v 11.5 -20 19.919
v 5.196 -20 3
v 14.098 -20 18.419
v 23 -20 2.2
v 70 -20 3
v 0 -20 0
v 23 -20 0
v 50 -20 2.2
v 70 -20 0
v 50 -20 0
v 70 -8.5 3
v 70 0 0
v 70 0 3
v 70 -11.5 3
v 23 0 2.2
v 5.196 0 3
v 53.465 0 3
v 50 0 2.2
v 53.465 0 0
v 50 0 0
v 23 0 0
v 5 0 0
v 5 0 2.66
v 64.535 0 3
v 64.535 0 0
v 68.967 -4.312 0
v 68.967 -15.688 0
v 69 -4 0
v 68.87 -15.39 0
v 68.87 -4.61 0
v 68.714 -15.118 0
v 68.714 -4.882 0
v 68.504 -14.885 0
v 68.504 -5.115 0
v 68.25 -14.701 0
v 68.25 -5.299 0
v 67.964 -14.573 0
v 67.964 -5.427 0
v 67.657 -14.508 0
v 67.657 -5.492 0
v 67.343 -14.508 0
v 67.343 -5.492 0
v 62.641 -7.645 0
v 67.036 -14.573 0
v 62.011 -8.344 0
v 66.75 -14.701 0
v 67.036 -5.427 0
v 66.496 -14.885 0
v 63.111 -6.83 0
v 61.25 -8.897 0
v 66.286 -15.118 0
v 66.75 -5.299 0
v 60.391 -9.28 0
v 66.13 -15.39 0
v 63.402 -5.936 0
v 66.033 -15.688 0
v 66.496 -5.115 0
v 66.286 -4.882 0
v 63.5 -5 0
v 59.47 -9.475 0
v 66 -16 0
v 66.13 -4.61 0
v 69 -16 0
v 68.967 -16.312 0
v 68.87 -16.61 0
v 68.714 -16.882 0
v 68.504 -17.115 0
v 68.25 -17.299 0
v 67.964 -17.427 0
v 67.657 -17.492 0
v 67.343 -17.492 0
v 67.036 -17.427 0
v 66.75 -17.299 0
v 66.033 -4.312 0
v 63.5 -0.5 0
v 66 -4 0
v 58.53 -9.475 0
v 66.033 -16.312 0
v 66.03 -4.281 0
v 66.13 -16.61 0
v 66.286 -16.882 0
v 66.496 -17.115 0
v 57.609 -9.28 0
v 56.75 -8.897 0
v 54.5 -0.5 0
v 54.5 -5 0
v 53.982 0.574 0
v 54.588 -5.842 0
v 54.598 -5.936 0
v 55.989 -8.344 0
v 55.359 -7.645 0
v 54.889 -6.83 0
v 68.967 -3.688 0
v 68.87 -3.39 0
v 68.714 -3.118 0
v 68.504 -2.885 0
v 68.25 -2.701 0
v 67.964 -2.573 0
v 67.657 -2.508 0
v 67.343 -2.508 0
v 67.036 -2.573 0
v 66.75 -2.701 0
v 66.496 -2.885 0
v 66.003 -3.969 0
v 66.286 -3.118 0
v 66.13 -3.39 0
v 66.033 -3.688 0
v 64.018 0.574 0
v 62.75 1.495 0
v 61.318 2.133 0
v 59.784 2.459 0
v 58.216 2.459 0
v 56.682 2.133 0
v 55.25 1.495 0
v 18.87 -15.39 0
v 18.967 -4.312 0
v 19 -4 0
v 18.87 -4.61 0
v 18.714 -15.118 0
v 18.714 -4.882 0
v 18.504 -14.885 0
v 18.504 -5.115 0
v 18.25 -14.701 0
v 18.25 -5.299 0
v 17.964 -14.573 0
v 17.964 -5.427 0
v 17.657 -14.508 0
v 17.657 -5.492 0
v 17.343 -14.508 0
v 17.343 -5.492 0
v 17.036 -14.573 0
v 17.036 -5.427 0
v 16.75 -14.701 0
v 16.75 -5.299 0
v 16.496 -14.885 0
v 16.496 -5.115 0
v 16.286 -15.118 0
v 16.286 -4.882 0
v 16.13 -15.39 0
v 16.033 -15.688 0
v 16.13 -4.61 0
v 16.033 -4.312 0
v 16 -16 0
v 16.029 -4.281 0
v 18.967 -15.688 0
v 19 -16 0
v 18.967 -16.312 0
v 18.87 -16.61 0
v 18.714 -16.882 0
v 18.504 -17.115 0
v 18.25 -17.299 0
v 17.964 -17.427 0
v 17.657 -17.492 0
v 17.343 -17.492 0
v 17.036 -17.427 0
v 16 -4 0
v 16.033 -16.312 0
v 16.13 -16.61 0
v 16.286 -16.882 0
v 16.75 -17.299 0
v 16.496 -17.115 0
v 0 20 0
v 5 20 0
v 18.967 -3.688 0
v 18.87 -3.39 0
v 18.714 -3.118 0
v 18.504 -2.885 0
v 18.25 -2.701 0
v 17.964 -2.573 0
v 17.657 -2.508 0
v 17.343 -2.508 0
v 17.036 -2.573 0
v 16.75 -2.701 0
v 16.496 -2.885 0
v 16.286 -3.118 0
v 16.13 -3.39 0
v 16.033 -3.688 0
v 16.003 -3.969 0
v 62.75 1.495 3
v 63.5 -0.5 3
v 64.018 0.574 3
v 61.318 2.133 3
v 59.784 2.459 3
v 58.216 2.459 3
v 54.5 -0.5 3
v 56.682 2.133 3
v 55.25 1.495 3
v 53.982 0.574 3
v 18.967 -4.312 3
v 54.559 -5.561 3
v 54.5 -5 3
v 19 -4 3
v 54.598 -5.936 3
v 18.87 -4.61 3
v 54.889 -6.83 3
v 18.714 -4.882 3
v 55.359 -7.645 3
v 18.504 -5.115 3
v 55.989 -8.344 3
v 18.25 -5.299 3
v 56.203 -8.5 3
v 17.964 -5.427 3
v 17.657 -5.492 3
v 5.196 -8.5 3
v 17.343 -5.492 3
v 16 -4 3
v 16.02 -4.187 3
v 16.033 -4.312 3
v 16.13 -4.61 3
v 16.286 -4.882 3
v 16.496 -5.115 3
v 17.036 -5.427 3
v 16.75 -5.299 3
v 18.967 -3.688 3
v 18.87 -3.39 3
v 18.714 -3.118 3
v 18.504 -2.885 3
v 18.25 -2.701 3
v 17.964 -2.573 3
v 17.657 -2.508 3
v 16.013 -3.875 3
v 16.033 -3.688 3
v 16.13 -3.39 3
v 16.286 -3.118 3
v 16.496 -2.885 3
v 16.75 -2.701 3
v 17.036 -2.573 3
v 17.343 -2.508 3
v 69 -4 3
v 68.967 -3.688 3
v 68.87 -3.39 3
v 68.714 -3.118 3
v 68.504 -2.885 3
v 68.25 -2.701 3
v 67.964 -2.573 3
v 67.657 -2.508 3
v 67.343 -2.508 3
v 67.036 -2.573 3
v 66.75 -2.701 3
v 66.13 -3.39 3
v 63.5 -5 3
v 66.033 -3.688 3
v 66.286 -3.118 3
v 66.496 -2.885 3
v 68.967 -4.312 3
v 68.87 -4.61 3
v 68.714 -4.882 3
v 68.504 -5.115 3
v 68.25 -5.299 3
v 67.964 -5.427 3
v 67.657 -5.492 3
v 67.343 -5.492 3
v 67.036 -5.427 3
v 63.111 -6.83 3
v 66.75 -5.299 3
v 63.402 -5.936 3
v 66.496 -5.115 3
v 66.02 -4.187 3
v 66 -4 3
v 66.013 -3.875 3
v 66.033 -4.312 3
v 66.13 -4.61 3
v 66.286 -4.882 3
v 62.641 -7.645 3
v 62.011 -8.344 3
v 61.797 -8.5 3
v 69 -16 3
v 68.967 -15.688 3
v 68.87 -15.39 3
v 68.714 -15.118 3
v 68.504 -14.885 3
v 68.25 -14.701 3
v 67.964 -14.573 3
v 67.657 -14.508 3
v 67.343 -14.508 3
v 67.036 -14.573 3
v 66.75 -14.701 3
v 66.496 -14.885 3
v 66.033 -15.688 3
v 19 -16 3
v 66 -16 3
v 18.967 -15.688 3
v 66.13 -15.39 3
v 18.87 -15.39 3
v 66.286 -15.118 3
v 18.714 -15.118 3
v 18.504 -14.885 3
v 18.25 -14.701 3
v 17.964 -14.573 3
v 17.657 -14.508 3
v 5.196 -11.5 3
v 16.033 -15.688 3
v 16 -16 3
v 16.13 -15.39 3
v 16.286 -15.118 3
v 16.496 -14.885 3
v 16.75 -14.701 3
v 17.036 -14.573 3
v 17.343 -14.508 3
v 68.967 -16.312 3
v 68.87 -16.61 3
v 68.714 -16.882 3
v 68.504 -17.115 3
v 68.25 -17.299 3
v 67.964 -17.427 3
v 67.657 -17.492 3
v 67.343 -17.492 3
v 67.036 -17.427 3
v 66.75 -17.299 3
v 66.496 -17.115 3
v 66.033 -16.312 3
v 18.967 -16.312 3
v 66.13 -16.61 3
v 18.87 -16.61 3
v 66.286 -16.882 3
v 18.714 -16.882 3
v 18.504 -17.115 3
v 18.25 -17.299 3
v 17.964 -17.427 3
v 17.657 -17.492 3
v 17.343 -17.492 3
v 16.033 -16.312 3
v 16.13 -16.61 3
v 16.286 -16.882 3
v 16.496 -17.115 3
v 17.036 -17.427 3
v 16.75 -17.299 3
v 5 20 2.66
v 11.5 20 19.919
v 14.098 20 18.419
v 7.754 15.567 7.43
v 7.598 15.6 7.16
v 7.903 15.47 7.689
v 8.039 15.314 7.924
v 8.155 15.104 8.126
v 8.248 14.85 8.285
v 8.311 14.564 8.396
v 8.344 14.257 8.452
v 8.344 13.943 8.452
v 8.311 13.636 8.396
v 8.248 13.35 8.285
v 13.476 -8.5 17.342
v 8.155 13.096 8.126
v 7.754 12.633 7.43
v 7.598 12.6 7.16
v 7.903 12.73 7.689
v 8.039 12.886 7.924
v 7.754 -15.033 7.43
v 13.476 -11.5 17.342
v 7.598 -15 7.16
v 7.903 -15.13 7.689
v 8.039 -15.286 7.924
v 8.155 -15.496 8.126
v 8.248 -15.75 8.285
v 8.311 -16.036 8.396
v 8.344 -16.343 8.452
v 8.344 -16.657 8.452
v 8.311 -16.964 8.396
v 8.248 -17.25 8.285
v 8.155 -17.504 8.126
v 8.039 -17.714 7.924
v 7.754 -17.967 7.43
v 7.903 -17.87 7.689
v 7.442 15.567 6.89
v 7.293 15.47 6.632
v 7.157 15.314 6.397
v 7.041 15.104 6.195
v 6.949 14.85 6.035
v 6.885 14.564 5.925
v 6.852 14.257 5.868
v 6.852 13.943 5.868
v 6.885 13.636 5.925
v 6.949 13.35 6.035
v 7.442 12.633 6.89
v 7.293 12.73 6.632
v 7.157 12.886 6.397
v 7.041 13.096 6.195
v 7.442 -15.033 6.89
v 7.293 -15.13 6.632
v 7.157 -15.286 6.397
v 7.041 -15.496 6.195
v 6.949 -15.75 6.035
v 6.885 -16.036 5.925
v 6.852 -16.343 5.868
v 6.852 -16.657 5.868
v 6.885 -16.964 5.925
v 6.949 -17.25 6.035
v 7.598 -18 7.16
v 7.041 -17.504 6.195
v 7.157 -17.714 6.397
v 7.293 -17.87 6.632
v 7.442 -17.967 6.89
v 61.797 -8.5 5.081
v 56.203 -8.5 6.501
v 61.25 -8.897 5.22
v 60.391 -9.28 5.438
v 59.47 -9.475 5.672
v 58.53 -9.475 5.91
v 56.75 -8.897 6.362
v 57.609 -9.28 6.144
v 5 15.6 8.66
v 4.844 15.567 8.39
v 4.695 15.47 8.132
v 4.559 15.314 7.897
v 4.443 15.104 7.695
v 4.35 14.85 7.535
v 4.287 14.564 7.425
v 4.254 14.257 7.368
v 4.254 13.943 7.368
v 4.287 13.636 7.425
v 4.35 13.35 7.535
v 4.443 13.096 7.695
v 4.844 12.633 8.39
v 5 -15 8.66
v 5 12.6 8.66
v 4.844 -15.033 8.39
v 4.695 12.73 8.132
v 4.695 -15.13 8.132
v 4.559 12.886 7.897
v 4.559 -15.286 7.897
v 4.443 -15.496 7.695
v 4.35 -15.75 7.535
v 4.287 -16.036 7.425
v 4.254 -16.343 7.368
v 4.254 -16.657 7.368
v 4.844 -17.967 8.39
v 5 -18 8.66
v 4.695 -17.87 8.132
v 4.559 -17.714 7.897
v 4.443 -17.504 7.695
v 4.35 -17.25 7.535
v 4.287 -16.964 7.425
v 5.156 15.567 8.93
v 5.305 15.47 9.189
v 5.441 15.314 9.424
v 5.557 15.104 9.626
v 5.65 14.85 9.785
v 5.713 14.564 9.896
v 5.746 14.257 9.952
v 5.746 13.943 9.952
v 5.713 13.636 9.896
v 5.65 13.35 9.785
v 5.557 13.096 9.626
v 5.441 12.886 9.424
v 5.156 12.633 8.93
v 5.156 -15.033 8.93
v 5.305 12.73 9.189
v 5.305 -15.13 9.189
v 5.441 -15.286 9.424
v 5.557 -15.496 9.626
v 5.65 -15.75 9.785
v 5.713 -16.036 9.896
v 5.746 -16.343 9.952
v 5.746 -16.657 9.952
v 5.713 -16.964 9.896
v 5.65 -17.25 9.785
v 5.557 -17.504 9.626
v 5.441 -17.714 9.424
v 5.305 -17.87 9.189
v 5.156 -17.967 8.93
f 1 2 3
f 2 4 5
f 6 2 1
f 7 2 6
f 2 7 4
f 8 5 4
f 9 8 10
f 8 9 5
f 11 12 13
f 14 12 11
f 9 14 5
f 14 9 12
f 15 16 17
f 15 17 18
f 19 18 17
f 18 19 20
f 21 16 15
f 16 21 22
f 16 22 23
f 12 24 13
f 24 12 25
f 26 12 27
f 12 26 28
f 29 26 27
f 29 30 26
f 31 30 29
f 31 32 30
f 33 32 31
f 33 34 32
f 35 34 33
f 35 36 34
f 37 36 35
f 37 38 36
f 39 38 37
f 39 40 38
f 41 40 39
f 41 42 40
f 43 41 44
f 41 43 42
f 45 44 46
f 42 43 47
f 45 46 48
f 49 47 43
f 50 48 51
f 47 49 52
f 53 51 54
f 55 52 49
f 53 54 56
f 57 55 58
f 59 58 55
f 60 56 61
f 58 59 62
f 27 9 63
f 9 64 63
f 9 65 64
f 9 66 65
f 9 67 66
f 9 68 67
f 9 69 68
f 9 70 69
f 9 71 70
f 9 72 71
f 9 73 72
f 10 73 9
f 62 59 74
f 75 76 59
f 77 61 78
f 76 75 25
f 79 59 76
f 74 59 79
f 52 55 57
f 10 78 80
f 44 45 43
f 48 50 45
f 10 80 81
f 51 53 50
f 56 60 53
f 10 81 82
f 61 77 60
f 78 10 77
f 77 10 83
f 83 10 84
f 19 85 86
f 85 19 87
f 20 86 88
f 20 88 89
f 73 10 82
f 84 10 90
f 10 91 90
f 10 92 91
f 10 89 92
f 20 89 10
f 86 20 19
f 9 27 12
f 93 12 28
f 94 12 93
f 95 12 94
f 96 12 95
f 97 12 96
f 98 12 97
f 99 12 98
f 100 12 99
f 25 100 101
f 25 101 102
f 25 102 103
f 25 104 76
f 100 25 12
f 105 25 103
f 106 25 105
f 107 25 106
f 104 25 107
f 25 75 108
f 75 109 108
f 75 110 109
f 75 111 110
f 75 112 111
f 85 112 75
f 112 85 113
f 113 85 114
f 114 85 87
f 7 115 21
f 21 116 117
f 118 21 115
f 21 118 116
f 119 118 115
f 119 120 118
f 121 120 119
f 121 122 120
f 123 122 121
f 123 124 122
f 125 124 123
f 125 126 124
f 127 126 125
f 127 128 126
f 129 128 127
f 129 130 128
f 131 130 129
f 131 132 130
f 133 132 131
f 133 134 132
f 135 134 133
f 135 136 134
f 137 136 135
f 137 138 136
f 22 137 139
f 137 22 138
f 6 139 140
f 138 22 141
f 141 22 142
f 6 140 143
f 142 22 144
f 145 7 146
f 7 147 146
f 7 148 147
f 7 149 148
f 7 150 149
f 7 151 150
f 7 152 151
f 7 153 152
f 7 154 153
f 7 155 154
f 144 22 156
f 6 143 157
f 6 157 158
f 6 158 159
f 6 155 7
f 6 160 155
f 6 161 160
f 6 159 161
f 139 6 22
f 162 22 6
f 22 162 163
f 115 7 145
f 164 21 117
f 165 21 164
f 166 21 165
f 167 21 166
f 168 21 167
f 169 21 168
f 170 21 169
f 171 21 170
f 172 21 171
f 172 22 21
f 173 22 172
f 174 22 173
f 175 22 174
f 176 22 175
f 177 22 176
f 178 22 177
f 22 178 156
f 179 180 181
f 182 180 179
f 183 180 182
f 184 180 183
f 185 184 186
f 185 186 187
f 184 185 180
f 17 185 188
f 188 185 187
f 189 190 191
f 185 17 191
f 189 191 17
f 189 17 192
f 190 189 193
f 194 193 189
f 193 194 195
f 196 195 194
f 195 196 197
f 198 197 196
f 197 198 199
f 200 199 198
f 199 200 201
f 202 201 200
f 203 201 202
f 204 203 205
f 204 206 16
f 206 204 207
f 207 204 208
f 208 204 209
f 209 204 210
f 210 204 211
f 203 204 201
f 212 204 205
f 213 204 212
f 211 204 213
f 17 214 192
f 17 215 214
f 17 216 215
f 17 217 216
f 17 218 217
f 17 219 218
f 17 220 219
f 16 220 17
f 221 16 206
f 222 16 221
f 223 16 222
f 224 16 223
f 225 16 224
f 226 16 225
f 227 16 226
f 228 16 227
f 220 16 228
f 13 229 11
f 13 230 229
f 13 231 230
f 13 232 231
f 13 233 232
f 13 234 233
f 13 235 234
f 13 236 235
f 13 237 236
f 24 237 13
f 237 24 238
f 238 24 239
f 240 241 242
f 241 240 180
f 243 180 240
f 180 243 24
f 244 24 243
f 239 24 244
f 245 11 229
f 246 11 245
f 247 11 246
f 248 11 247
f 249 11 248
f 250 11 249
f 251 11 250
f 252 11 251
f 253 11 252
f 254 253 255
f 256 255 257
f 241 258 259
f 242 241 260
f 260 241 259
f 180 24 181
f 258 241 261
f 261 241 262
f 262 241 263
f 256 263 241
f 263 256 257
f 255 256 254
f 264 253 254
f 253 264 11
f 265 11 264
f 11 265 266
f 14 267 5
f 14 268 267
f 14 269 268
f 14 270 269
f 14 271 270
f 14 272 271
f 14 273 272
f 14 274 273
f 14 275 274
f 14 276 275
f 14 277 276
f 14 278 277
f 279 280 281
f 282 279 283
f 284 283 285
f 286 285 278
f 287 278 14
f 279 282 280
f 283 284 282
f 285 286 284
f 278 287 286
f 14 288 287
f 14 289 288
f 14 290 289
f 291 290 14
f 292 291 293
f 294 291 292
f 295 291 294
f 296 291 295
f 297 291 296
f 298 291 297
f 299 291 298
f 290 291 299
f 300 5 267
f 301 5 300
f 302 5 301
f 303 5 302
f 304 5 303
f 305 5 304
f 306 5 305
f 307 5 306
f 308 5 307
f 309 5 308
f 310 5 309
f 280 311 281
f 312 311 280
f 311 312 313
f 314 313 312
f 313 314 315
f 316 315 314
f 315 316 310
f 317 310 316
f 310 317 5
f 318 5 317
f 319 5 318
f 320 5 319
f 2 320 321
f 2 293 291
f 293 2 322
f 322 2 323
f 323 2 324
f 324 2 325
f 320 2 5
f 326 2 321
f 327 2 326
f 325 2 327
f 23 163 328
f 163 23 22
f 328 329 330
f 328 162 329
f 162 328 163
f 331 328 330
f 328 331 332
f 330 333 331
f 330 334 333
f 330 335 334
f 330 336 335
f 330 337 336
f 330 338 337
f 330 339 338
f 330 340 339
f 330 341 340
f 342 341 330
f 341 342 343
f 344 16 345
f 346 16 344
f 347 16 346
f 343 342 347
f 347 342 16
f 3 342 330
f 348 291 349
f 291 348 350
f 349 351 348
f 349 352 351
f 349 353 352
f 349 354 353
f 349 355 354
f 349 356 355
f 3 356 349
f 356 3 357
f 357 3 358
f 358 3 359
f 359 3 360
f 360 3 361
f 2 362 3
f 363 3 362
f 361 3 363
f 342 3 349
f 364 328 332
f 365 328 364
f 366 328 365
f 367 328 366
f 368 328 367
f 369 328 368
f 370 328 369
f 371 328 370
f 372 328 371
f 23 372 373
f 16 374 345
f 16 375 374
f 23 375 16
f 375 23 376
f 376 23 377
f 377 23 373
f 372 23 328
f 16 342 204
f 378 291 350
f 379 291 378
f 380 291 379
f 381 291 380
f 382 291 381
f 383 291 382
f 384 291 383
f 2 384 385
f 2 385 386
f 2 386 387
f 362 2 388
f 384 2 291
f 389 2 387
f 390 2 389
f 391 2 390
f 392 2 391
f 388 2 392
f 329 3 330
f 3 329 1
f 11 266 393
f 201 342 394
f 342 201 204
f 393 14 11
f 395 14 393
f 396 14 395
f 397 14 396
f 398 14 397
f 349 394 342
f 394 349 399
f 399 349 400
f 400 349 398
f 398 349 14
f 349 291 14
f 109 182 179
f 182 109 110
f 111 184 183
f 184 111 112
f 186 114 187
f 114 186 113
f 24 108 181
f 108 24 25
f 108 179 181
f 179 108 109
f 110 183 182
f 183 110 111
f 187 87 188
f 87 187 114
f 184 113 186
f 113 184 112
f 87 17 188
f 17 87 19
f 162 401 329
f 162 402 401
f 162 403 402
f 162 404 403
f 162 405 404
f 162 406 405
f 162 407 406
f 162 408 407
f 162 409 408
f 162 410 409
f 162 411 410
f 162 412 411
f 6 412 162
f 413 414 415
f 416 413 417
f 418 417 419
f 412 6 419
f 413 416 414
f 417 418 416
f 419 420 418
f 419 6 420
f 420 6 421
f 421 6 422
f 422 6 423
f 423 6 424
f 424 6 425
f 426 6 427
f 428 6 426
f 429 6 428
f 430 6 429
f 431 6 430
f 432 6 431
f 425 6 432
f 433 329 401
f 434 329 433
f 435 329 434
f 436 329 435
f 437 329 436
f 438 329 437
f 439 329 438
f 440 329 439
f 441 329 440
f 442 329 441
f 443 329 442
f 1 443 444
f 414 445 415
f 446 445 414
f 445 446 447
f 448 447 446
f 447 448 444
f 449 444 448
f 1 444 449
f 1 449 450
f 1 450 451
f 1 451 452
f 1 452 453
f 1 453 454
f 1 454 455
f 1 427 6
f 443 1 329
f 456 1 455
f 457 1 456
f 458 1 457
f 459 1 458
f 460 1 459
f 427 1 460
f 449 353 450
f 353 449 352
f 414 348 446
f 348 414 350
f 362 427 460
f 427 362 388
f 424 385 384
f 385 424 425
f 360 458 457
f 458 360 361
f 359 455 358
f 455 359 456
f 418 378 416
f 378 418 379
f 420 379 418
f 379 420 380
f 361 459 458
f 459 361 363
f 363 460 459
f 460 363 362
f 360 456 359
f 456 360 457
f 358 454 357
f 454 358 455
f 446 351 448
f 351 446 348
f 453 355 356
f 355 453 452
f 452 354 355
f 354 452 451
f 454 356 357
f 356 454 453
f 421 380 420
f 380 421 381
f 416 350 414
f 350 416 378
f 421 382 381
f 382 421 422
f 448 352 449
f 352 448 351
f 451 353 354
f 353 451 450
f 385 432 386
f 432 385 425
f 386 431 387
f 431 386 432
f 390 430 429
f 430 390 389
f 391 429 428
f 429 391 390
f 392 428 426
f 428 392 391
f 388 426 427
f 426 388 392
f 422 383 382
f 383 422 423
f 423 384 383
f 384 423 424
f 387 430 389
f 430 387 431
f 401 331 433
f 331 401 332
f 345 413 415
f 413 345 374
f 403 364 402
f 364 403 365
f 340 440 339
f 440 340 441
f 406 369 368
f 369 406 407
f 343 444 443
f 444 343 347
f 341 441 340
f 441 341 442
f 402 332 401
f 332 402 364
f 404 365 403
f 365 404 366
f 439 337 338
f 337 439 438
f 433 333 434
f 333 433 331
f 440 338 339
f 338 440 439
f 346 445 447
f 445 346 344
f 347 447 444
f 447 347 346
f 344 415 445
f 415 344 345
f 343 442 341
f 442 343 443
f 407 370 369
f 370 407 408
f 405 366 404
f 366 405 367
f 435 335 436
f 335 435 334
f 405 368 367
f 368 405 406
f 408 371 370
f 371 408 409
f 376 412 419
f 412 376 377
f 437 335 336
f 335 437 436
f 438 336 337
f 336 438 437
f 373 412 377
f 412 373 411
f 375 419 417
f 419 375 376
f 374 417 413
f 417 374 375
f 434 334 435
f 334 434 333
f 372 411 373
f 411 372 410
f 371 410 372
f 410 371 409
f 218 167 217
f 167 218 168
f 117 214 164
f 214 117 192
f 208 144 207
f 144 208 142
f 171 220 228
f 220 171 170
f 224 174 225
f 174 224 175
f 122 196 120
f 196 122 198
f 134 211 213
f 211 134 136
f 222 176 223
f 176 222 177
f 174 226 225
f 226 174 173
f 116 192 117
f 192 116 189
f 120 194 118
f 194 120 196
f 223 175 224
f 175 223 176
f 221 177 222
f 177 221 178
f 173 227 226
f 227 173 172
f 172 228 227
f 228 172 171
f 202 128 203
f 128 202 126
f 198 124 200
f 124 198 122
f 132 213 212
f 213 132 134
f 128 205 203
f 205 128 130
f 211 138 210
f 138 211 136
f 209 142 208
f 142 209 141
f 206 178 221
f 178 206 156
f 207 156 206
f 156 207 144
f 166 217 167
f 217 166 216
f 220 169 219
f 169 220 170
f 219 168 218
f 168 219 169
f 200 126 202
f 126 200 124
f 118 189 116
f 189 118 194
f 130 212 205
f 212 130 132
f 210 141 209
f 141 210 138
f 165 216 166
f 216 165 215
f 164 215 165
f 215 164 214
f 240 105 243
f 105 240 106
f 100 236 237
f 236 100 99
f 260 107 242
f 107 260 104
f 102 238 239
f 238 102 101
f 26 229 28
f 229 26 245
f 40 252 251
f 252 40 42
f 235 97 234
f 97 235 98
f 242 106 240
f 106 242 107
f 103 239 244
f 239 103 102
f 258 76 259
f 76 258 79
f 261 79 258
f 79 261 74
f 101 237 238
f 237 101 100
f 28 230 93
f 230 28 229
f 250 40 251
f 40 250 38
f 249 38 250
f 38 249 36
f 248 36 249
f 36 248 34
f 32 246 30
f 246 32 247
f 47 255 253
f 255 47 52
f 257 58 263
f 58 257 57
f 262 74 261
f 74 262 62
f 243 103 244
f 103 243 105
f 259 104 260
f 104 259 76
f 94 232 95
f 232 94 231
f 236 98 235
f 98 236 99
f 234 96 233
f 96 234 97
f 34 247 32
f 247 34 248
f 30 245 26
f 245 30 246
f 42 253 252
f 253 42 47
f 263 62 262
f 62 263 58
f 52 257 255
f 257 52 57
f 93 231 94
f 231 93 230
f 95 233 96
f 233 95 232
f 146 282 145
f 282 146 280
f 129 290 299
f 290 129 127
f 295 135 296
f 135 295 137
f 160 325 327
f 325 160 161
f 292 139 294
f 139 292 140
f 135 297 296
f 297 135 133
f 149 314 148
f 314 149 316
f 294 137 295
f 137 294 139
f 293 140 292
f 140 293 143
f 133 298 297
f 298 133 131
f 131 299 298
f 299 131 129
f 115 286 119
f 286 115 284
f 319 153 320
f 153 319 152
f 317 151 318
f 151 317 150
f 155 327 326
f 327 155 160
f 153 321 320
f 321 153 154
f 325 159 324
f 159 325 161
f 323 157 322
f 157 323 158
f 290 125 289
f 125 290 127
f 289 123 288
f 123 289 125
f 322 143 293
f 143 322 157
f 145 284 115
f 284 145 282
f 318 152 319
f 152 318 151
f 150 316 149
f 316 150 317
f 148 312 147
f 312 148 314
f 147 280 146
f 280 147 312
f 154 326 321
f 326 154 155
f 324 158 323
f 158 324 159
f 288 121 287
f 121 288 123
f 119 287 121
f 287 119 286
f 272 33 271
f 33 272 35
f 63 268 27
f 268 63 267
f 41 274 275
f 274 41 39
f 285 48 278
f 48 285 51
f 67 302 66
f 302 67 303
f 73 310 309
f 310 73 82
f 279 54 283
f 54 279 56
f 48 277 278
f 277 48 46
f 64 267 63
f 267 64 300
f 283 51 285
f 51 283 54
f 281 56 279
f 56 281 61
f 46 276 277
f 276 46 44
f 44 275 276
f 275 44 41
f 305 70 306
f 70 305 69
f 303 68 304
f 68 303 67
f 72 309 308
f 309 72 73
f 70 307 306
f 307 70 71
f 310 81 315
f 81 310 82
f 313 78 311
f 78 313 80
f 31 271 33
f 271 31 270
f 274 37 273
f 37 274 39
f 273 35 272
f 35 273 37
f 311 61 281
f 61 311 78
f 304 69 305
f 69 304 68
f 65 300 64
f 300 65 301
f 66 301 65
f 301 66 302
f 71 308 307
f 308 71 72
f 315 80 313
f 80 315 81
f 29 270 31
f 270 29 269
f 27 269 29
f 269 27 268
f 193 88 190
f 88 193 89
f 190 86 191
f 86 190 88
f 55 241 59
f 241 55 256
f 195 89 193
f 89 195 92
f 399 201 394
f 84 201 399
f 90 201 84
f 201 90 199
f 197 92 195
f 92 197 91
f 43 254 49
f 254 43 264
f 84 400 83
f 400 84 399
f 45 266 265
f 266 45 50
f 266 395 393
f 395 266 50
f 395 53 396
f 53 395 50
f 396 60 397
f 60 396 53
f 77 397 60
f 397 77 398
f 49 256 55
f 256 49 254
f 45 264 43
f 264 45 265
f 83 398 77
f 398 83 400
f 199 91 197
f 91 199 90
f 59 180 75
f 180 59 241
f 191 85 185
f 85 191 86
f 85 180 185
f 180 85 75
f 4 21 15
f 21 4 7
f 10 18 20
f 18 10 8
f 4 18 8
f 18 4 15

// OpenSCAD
// file: lib/halfcube.scad
// библиотечная функция - прямоугольная призма
/*
 * a - вектор [x,y,z] - куб, в который вписана призма
 * orient - строка "x"/"y"/"z" - ориентация треугольной грани призмы
 * center - логическое true/false - позиционирование относительно центра или с угла
 *
 * Автор - Andrew Answer (Андрей Нуждов): http://answe.ru
 * Сделано для проекта SibRap: http://reprap.org/wiki/SibRap
 * GitHub: https://github.com/andrewanswer/sibrap
 */
module halfcube(a, orient, center) {
	translate(center==true?-a/2:0) {
		if (orient=="x")
			polyhedron (points = [[a[0],0,a[2]], [0,0,a[2]], [0,a[1],0], [0,0,0], [a[0],0,0], [a[0],a[1],0]], faces = [[1,3,2], [4,0,5], [3,1,4], [1,2,5], [1,0,4], [0,1,5],  [5,2,4], [4,2,3]]);
		if (orient=="y")
			polyhedron (points = [[0,a[1],a[2]], [0,0,a[2]], [0,a[1],0], [0,0,0], [a[0],0,0], [a[0],a[1],0]], faces = [[1,3,2], [1,2,0], [3,1,4], [0,2,5], [1,5,4], [1,0,5],  [5,2,4], [4,2,3]]);
		if (orient=="z")
			polyhedron (points = [[0,a[1],a[2]], [0,0,a[2]], [0,a[1],0], [0,0,0], [a[0],0,0], [a[0],0,a[2]]], faces = [[1,3,2], [1,2,0], [3,1,4], [0,2,5], [1,5,4], [1,0,5],  [5,2,4], [4,2,3]]);
	}
}

// test
/*
halfcube([10,20,30],"x",true);
halfcube([10,20,30],"y",true);
halfcube([10,20,30],"z",false);
*/
// file: config.scad
/**
 * Глобальный конфигурационный файл
 */
// качество цилиндров
$fn=30;

// избегание совпадения граней
DELTA=0.1;

// толщина рамы
FRAME=18;

// расстояние от стенок до гайки
DELTA_NUT = 0.3;
// высота, макс. диаметр, между стенками (размер ключа)
// гайка М3
m3_base=[2.4,6.4,5.5];
m3_hole=m3_base+[DELTA_NUT,DELTA_NUT,DELTA_NUT];
//[3,7,6]
// гайка М4
m4_base=[3.2,8.1,6.9];
m4_hole=m4_base+[DELTA_NUT,DELTA_NUT,DELTA_NUT];
// гайка М5
m5_base=[3.8,9.1,7.9];
m5_hole=m5_base+[DELTA_NUT,DELTA_NUT,DELTA_NUT];
// main file
include <config.scad>
use <lib/halfcube.scad>

x2=145;
x3=120;
dx=(x2-x3)/2;
dx0=4;

x1=70;
y1=20;
z1=20;
h1=3;

r1=4.5;

module lcd() {
    rotate([90,0,0])
    difference() {
    union() {
        cube([x1,h1,z1]);
      translate([0,0,-20])cube([5,h1,z1]);
        rotate([0,0,-30])translate([0,3,-20])cube([h1,y1,z1+20]);
        translate([h1,h1,(z1-h1)/2])halfcube([x1-h1,y1-h1,h1],"z");
        translate([x1-11,0,z1-dx0-11])rotate([-90,0,0])cylinder(r=r1+3,h=h1);
    }
        rotate([0,0,-30]){translate([-3*3,0,-20])cube([h1*3,y1+3,z1+20]);
        translate([-1,10,dx0+dx])rotate([0,90,0])cylinder(r=1.5,h=h1+2);
        translate([-1,10,z1-(dx0+dx)+13-30.6])rotate([0,90,0])cylinder(r=1.5,h=h1+2);}
        translate([x1-2.5-50,-1,dx0])rotate([-90,0,0])cylinder(r=1.5,h=10);
        translate([x1-2.5,-1,dx0])rotate([-90,0,0])cylinder(r=1.5,h=10);
        translate([x1-2.5-50,-1,z1-dx0])rotate([-90,0,0])cylinder(r=1.5,h=10);
        translate([x1-2.5,-1,z1-dx0])rotate([-90,0,0])cylinder(r=1.5,h=10);
        translate([x1-11,-1,z1-dx0-11])rotate([-90,0,0])cylinder(r=r1,h=10);
        translate([x1-11-r1,-1,z1-dx0-11])rotate([-90,0,0])cube([r1*2,r1,h1+2]);
        translate([x1-21-25-1,-0.1,-0.1])cube([27,2.3,20.2]);
    }
}

lcd();
